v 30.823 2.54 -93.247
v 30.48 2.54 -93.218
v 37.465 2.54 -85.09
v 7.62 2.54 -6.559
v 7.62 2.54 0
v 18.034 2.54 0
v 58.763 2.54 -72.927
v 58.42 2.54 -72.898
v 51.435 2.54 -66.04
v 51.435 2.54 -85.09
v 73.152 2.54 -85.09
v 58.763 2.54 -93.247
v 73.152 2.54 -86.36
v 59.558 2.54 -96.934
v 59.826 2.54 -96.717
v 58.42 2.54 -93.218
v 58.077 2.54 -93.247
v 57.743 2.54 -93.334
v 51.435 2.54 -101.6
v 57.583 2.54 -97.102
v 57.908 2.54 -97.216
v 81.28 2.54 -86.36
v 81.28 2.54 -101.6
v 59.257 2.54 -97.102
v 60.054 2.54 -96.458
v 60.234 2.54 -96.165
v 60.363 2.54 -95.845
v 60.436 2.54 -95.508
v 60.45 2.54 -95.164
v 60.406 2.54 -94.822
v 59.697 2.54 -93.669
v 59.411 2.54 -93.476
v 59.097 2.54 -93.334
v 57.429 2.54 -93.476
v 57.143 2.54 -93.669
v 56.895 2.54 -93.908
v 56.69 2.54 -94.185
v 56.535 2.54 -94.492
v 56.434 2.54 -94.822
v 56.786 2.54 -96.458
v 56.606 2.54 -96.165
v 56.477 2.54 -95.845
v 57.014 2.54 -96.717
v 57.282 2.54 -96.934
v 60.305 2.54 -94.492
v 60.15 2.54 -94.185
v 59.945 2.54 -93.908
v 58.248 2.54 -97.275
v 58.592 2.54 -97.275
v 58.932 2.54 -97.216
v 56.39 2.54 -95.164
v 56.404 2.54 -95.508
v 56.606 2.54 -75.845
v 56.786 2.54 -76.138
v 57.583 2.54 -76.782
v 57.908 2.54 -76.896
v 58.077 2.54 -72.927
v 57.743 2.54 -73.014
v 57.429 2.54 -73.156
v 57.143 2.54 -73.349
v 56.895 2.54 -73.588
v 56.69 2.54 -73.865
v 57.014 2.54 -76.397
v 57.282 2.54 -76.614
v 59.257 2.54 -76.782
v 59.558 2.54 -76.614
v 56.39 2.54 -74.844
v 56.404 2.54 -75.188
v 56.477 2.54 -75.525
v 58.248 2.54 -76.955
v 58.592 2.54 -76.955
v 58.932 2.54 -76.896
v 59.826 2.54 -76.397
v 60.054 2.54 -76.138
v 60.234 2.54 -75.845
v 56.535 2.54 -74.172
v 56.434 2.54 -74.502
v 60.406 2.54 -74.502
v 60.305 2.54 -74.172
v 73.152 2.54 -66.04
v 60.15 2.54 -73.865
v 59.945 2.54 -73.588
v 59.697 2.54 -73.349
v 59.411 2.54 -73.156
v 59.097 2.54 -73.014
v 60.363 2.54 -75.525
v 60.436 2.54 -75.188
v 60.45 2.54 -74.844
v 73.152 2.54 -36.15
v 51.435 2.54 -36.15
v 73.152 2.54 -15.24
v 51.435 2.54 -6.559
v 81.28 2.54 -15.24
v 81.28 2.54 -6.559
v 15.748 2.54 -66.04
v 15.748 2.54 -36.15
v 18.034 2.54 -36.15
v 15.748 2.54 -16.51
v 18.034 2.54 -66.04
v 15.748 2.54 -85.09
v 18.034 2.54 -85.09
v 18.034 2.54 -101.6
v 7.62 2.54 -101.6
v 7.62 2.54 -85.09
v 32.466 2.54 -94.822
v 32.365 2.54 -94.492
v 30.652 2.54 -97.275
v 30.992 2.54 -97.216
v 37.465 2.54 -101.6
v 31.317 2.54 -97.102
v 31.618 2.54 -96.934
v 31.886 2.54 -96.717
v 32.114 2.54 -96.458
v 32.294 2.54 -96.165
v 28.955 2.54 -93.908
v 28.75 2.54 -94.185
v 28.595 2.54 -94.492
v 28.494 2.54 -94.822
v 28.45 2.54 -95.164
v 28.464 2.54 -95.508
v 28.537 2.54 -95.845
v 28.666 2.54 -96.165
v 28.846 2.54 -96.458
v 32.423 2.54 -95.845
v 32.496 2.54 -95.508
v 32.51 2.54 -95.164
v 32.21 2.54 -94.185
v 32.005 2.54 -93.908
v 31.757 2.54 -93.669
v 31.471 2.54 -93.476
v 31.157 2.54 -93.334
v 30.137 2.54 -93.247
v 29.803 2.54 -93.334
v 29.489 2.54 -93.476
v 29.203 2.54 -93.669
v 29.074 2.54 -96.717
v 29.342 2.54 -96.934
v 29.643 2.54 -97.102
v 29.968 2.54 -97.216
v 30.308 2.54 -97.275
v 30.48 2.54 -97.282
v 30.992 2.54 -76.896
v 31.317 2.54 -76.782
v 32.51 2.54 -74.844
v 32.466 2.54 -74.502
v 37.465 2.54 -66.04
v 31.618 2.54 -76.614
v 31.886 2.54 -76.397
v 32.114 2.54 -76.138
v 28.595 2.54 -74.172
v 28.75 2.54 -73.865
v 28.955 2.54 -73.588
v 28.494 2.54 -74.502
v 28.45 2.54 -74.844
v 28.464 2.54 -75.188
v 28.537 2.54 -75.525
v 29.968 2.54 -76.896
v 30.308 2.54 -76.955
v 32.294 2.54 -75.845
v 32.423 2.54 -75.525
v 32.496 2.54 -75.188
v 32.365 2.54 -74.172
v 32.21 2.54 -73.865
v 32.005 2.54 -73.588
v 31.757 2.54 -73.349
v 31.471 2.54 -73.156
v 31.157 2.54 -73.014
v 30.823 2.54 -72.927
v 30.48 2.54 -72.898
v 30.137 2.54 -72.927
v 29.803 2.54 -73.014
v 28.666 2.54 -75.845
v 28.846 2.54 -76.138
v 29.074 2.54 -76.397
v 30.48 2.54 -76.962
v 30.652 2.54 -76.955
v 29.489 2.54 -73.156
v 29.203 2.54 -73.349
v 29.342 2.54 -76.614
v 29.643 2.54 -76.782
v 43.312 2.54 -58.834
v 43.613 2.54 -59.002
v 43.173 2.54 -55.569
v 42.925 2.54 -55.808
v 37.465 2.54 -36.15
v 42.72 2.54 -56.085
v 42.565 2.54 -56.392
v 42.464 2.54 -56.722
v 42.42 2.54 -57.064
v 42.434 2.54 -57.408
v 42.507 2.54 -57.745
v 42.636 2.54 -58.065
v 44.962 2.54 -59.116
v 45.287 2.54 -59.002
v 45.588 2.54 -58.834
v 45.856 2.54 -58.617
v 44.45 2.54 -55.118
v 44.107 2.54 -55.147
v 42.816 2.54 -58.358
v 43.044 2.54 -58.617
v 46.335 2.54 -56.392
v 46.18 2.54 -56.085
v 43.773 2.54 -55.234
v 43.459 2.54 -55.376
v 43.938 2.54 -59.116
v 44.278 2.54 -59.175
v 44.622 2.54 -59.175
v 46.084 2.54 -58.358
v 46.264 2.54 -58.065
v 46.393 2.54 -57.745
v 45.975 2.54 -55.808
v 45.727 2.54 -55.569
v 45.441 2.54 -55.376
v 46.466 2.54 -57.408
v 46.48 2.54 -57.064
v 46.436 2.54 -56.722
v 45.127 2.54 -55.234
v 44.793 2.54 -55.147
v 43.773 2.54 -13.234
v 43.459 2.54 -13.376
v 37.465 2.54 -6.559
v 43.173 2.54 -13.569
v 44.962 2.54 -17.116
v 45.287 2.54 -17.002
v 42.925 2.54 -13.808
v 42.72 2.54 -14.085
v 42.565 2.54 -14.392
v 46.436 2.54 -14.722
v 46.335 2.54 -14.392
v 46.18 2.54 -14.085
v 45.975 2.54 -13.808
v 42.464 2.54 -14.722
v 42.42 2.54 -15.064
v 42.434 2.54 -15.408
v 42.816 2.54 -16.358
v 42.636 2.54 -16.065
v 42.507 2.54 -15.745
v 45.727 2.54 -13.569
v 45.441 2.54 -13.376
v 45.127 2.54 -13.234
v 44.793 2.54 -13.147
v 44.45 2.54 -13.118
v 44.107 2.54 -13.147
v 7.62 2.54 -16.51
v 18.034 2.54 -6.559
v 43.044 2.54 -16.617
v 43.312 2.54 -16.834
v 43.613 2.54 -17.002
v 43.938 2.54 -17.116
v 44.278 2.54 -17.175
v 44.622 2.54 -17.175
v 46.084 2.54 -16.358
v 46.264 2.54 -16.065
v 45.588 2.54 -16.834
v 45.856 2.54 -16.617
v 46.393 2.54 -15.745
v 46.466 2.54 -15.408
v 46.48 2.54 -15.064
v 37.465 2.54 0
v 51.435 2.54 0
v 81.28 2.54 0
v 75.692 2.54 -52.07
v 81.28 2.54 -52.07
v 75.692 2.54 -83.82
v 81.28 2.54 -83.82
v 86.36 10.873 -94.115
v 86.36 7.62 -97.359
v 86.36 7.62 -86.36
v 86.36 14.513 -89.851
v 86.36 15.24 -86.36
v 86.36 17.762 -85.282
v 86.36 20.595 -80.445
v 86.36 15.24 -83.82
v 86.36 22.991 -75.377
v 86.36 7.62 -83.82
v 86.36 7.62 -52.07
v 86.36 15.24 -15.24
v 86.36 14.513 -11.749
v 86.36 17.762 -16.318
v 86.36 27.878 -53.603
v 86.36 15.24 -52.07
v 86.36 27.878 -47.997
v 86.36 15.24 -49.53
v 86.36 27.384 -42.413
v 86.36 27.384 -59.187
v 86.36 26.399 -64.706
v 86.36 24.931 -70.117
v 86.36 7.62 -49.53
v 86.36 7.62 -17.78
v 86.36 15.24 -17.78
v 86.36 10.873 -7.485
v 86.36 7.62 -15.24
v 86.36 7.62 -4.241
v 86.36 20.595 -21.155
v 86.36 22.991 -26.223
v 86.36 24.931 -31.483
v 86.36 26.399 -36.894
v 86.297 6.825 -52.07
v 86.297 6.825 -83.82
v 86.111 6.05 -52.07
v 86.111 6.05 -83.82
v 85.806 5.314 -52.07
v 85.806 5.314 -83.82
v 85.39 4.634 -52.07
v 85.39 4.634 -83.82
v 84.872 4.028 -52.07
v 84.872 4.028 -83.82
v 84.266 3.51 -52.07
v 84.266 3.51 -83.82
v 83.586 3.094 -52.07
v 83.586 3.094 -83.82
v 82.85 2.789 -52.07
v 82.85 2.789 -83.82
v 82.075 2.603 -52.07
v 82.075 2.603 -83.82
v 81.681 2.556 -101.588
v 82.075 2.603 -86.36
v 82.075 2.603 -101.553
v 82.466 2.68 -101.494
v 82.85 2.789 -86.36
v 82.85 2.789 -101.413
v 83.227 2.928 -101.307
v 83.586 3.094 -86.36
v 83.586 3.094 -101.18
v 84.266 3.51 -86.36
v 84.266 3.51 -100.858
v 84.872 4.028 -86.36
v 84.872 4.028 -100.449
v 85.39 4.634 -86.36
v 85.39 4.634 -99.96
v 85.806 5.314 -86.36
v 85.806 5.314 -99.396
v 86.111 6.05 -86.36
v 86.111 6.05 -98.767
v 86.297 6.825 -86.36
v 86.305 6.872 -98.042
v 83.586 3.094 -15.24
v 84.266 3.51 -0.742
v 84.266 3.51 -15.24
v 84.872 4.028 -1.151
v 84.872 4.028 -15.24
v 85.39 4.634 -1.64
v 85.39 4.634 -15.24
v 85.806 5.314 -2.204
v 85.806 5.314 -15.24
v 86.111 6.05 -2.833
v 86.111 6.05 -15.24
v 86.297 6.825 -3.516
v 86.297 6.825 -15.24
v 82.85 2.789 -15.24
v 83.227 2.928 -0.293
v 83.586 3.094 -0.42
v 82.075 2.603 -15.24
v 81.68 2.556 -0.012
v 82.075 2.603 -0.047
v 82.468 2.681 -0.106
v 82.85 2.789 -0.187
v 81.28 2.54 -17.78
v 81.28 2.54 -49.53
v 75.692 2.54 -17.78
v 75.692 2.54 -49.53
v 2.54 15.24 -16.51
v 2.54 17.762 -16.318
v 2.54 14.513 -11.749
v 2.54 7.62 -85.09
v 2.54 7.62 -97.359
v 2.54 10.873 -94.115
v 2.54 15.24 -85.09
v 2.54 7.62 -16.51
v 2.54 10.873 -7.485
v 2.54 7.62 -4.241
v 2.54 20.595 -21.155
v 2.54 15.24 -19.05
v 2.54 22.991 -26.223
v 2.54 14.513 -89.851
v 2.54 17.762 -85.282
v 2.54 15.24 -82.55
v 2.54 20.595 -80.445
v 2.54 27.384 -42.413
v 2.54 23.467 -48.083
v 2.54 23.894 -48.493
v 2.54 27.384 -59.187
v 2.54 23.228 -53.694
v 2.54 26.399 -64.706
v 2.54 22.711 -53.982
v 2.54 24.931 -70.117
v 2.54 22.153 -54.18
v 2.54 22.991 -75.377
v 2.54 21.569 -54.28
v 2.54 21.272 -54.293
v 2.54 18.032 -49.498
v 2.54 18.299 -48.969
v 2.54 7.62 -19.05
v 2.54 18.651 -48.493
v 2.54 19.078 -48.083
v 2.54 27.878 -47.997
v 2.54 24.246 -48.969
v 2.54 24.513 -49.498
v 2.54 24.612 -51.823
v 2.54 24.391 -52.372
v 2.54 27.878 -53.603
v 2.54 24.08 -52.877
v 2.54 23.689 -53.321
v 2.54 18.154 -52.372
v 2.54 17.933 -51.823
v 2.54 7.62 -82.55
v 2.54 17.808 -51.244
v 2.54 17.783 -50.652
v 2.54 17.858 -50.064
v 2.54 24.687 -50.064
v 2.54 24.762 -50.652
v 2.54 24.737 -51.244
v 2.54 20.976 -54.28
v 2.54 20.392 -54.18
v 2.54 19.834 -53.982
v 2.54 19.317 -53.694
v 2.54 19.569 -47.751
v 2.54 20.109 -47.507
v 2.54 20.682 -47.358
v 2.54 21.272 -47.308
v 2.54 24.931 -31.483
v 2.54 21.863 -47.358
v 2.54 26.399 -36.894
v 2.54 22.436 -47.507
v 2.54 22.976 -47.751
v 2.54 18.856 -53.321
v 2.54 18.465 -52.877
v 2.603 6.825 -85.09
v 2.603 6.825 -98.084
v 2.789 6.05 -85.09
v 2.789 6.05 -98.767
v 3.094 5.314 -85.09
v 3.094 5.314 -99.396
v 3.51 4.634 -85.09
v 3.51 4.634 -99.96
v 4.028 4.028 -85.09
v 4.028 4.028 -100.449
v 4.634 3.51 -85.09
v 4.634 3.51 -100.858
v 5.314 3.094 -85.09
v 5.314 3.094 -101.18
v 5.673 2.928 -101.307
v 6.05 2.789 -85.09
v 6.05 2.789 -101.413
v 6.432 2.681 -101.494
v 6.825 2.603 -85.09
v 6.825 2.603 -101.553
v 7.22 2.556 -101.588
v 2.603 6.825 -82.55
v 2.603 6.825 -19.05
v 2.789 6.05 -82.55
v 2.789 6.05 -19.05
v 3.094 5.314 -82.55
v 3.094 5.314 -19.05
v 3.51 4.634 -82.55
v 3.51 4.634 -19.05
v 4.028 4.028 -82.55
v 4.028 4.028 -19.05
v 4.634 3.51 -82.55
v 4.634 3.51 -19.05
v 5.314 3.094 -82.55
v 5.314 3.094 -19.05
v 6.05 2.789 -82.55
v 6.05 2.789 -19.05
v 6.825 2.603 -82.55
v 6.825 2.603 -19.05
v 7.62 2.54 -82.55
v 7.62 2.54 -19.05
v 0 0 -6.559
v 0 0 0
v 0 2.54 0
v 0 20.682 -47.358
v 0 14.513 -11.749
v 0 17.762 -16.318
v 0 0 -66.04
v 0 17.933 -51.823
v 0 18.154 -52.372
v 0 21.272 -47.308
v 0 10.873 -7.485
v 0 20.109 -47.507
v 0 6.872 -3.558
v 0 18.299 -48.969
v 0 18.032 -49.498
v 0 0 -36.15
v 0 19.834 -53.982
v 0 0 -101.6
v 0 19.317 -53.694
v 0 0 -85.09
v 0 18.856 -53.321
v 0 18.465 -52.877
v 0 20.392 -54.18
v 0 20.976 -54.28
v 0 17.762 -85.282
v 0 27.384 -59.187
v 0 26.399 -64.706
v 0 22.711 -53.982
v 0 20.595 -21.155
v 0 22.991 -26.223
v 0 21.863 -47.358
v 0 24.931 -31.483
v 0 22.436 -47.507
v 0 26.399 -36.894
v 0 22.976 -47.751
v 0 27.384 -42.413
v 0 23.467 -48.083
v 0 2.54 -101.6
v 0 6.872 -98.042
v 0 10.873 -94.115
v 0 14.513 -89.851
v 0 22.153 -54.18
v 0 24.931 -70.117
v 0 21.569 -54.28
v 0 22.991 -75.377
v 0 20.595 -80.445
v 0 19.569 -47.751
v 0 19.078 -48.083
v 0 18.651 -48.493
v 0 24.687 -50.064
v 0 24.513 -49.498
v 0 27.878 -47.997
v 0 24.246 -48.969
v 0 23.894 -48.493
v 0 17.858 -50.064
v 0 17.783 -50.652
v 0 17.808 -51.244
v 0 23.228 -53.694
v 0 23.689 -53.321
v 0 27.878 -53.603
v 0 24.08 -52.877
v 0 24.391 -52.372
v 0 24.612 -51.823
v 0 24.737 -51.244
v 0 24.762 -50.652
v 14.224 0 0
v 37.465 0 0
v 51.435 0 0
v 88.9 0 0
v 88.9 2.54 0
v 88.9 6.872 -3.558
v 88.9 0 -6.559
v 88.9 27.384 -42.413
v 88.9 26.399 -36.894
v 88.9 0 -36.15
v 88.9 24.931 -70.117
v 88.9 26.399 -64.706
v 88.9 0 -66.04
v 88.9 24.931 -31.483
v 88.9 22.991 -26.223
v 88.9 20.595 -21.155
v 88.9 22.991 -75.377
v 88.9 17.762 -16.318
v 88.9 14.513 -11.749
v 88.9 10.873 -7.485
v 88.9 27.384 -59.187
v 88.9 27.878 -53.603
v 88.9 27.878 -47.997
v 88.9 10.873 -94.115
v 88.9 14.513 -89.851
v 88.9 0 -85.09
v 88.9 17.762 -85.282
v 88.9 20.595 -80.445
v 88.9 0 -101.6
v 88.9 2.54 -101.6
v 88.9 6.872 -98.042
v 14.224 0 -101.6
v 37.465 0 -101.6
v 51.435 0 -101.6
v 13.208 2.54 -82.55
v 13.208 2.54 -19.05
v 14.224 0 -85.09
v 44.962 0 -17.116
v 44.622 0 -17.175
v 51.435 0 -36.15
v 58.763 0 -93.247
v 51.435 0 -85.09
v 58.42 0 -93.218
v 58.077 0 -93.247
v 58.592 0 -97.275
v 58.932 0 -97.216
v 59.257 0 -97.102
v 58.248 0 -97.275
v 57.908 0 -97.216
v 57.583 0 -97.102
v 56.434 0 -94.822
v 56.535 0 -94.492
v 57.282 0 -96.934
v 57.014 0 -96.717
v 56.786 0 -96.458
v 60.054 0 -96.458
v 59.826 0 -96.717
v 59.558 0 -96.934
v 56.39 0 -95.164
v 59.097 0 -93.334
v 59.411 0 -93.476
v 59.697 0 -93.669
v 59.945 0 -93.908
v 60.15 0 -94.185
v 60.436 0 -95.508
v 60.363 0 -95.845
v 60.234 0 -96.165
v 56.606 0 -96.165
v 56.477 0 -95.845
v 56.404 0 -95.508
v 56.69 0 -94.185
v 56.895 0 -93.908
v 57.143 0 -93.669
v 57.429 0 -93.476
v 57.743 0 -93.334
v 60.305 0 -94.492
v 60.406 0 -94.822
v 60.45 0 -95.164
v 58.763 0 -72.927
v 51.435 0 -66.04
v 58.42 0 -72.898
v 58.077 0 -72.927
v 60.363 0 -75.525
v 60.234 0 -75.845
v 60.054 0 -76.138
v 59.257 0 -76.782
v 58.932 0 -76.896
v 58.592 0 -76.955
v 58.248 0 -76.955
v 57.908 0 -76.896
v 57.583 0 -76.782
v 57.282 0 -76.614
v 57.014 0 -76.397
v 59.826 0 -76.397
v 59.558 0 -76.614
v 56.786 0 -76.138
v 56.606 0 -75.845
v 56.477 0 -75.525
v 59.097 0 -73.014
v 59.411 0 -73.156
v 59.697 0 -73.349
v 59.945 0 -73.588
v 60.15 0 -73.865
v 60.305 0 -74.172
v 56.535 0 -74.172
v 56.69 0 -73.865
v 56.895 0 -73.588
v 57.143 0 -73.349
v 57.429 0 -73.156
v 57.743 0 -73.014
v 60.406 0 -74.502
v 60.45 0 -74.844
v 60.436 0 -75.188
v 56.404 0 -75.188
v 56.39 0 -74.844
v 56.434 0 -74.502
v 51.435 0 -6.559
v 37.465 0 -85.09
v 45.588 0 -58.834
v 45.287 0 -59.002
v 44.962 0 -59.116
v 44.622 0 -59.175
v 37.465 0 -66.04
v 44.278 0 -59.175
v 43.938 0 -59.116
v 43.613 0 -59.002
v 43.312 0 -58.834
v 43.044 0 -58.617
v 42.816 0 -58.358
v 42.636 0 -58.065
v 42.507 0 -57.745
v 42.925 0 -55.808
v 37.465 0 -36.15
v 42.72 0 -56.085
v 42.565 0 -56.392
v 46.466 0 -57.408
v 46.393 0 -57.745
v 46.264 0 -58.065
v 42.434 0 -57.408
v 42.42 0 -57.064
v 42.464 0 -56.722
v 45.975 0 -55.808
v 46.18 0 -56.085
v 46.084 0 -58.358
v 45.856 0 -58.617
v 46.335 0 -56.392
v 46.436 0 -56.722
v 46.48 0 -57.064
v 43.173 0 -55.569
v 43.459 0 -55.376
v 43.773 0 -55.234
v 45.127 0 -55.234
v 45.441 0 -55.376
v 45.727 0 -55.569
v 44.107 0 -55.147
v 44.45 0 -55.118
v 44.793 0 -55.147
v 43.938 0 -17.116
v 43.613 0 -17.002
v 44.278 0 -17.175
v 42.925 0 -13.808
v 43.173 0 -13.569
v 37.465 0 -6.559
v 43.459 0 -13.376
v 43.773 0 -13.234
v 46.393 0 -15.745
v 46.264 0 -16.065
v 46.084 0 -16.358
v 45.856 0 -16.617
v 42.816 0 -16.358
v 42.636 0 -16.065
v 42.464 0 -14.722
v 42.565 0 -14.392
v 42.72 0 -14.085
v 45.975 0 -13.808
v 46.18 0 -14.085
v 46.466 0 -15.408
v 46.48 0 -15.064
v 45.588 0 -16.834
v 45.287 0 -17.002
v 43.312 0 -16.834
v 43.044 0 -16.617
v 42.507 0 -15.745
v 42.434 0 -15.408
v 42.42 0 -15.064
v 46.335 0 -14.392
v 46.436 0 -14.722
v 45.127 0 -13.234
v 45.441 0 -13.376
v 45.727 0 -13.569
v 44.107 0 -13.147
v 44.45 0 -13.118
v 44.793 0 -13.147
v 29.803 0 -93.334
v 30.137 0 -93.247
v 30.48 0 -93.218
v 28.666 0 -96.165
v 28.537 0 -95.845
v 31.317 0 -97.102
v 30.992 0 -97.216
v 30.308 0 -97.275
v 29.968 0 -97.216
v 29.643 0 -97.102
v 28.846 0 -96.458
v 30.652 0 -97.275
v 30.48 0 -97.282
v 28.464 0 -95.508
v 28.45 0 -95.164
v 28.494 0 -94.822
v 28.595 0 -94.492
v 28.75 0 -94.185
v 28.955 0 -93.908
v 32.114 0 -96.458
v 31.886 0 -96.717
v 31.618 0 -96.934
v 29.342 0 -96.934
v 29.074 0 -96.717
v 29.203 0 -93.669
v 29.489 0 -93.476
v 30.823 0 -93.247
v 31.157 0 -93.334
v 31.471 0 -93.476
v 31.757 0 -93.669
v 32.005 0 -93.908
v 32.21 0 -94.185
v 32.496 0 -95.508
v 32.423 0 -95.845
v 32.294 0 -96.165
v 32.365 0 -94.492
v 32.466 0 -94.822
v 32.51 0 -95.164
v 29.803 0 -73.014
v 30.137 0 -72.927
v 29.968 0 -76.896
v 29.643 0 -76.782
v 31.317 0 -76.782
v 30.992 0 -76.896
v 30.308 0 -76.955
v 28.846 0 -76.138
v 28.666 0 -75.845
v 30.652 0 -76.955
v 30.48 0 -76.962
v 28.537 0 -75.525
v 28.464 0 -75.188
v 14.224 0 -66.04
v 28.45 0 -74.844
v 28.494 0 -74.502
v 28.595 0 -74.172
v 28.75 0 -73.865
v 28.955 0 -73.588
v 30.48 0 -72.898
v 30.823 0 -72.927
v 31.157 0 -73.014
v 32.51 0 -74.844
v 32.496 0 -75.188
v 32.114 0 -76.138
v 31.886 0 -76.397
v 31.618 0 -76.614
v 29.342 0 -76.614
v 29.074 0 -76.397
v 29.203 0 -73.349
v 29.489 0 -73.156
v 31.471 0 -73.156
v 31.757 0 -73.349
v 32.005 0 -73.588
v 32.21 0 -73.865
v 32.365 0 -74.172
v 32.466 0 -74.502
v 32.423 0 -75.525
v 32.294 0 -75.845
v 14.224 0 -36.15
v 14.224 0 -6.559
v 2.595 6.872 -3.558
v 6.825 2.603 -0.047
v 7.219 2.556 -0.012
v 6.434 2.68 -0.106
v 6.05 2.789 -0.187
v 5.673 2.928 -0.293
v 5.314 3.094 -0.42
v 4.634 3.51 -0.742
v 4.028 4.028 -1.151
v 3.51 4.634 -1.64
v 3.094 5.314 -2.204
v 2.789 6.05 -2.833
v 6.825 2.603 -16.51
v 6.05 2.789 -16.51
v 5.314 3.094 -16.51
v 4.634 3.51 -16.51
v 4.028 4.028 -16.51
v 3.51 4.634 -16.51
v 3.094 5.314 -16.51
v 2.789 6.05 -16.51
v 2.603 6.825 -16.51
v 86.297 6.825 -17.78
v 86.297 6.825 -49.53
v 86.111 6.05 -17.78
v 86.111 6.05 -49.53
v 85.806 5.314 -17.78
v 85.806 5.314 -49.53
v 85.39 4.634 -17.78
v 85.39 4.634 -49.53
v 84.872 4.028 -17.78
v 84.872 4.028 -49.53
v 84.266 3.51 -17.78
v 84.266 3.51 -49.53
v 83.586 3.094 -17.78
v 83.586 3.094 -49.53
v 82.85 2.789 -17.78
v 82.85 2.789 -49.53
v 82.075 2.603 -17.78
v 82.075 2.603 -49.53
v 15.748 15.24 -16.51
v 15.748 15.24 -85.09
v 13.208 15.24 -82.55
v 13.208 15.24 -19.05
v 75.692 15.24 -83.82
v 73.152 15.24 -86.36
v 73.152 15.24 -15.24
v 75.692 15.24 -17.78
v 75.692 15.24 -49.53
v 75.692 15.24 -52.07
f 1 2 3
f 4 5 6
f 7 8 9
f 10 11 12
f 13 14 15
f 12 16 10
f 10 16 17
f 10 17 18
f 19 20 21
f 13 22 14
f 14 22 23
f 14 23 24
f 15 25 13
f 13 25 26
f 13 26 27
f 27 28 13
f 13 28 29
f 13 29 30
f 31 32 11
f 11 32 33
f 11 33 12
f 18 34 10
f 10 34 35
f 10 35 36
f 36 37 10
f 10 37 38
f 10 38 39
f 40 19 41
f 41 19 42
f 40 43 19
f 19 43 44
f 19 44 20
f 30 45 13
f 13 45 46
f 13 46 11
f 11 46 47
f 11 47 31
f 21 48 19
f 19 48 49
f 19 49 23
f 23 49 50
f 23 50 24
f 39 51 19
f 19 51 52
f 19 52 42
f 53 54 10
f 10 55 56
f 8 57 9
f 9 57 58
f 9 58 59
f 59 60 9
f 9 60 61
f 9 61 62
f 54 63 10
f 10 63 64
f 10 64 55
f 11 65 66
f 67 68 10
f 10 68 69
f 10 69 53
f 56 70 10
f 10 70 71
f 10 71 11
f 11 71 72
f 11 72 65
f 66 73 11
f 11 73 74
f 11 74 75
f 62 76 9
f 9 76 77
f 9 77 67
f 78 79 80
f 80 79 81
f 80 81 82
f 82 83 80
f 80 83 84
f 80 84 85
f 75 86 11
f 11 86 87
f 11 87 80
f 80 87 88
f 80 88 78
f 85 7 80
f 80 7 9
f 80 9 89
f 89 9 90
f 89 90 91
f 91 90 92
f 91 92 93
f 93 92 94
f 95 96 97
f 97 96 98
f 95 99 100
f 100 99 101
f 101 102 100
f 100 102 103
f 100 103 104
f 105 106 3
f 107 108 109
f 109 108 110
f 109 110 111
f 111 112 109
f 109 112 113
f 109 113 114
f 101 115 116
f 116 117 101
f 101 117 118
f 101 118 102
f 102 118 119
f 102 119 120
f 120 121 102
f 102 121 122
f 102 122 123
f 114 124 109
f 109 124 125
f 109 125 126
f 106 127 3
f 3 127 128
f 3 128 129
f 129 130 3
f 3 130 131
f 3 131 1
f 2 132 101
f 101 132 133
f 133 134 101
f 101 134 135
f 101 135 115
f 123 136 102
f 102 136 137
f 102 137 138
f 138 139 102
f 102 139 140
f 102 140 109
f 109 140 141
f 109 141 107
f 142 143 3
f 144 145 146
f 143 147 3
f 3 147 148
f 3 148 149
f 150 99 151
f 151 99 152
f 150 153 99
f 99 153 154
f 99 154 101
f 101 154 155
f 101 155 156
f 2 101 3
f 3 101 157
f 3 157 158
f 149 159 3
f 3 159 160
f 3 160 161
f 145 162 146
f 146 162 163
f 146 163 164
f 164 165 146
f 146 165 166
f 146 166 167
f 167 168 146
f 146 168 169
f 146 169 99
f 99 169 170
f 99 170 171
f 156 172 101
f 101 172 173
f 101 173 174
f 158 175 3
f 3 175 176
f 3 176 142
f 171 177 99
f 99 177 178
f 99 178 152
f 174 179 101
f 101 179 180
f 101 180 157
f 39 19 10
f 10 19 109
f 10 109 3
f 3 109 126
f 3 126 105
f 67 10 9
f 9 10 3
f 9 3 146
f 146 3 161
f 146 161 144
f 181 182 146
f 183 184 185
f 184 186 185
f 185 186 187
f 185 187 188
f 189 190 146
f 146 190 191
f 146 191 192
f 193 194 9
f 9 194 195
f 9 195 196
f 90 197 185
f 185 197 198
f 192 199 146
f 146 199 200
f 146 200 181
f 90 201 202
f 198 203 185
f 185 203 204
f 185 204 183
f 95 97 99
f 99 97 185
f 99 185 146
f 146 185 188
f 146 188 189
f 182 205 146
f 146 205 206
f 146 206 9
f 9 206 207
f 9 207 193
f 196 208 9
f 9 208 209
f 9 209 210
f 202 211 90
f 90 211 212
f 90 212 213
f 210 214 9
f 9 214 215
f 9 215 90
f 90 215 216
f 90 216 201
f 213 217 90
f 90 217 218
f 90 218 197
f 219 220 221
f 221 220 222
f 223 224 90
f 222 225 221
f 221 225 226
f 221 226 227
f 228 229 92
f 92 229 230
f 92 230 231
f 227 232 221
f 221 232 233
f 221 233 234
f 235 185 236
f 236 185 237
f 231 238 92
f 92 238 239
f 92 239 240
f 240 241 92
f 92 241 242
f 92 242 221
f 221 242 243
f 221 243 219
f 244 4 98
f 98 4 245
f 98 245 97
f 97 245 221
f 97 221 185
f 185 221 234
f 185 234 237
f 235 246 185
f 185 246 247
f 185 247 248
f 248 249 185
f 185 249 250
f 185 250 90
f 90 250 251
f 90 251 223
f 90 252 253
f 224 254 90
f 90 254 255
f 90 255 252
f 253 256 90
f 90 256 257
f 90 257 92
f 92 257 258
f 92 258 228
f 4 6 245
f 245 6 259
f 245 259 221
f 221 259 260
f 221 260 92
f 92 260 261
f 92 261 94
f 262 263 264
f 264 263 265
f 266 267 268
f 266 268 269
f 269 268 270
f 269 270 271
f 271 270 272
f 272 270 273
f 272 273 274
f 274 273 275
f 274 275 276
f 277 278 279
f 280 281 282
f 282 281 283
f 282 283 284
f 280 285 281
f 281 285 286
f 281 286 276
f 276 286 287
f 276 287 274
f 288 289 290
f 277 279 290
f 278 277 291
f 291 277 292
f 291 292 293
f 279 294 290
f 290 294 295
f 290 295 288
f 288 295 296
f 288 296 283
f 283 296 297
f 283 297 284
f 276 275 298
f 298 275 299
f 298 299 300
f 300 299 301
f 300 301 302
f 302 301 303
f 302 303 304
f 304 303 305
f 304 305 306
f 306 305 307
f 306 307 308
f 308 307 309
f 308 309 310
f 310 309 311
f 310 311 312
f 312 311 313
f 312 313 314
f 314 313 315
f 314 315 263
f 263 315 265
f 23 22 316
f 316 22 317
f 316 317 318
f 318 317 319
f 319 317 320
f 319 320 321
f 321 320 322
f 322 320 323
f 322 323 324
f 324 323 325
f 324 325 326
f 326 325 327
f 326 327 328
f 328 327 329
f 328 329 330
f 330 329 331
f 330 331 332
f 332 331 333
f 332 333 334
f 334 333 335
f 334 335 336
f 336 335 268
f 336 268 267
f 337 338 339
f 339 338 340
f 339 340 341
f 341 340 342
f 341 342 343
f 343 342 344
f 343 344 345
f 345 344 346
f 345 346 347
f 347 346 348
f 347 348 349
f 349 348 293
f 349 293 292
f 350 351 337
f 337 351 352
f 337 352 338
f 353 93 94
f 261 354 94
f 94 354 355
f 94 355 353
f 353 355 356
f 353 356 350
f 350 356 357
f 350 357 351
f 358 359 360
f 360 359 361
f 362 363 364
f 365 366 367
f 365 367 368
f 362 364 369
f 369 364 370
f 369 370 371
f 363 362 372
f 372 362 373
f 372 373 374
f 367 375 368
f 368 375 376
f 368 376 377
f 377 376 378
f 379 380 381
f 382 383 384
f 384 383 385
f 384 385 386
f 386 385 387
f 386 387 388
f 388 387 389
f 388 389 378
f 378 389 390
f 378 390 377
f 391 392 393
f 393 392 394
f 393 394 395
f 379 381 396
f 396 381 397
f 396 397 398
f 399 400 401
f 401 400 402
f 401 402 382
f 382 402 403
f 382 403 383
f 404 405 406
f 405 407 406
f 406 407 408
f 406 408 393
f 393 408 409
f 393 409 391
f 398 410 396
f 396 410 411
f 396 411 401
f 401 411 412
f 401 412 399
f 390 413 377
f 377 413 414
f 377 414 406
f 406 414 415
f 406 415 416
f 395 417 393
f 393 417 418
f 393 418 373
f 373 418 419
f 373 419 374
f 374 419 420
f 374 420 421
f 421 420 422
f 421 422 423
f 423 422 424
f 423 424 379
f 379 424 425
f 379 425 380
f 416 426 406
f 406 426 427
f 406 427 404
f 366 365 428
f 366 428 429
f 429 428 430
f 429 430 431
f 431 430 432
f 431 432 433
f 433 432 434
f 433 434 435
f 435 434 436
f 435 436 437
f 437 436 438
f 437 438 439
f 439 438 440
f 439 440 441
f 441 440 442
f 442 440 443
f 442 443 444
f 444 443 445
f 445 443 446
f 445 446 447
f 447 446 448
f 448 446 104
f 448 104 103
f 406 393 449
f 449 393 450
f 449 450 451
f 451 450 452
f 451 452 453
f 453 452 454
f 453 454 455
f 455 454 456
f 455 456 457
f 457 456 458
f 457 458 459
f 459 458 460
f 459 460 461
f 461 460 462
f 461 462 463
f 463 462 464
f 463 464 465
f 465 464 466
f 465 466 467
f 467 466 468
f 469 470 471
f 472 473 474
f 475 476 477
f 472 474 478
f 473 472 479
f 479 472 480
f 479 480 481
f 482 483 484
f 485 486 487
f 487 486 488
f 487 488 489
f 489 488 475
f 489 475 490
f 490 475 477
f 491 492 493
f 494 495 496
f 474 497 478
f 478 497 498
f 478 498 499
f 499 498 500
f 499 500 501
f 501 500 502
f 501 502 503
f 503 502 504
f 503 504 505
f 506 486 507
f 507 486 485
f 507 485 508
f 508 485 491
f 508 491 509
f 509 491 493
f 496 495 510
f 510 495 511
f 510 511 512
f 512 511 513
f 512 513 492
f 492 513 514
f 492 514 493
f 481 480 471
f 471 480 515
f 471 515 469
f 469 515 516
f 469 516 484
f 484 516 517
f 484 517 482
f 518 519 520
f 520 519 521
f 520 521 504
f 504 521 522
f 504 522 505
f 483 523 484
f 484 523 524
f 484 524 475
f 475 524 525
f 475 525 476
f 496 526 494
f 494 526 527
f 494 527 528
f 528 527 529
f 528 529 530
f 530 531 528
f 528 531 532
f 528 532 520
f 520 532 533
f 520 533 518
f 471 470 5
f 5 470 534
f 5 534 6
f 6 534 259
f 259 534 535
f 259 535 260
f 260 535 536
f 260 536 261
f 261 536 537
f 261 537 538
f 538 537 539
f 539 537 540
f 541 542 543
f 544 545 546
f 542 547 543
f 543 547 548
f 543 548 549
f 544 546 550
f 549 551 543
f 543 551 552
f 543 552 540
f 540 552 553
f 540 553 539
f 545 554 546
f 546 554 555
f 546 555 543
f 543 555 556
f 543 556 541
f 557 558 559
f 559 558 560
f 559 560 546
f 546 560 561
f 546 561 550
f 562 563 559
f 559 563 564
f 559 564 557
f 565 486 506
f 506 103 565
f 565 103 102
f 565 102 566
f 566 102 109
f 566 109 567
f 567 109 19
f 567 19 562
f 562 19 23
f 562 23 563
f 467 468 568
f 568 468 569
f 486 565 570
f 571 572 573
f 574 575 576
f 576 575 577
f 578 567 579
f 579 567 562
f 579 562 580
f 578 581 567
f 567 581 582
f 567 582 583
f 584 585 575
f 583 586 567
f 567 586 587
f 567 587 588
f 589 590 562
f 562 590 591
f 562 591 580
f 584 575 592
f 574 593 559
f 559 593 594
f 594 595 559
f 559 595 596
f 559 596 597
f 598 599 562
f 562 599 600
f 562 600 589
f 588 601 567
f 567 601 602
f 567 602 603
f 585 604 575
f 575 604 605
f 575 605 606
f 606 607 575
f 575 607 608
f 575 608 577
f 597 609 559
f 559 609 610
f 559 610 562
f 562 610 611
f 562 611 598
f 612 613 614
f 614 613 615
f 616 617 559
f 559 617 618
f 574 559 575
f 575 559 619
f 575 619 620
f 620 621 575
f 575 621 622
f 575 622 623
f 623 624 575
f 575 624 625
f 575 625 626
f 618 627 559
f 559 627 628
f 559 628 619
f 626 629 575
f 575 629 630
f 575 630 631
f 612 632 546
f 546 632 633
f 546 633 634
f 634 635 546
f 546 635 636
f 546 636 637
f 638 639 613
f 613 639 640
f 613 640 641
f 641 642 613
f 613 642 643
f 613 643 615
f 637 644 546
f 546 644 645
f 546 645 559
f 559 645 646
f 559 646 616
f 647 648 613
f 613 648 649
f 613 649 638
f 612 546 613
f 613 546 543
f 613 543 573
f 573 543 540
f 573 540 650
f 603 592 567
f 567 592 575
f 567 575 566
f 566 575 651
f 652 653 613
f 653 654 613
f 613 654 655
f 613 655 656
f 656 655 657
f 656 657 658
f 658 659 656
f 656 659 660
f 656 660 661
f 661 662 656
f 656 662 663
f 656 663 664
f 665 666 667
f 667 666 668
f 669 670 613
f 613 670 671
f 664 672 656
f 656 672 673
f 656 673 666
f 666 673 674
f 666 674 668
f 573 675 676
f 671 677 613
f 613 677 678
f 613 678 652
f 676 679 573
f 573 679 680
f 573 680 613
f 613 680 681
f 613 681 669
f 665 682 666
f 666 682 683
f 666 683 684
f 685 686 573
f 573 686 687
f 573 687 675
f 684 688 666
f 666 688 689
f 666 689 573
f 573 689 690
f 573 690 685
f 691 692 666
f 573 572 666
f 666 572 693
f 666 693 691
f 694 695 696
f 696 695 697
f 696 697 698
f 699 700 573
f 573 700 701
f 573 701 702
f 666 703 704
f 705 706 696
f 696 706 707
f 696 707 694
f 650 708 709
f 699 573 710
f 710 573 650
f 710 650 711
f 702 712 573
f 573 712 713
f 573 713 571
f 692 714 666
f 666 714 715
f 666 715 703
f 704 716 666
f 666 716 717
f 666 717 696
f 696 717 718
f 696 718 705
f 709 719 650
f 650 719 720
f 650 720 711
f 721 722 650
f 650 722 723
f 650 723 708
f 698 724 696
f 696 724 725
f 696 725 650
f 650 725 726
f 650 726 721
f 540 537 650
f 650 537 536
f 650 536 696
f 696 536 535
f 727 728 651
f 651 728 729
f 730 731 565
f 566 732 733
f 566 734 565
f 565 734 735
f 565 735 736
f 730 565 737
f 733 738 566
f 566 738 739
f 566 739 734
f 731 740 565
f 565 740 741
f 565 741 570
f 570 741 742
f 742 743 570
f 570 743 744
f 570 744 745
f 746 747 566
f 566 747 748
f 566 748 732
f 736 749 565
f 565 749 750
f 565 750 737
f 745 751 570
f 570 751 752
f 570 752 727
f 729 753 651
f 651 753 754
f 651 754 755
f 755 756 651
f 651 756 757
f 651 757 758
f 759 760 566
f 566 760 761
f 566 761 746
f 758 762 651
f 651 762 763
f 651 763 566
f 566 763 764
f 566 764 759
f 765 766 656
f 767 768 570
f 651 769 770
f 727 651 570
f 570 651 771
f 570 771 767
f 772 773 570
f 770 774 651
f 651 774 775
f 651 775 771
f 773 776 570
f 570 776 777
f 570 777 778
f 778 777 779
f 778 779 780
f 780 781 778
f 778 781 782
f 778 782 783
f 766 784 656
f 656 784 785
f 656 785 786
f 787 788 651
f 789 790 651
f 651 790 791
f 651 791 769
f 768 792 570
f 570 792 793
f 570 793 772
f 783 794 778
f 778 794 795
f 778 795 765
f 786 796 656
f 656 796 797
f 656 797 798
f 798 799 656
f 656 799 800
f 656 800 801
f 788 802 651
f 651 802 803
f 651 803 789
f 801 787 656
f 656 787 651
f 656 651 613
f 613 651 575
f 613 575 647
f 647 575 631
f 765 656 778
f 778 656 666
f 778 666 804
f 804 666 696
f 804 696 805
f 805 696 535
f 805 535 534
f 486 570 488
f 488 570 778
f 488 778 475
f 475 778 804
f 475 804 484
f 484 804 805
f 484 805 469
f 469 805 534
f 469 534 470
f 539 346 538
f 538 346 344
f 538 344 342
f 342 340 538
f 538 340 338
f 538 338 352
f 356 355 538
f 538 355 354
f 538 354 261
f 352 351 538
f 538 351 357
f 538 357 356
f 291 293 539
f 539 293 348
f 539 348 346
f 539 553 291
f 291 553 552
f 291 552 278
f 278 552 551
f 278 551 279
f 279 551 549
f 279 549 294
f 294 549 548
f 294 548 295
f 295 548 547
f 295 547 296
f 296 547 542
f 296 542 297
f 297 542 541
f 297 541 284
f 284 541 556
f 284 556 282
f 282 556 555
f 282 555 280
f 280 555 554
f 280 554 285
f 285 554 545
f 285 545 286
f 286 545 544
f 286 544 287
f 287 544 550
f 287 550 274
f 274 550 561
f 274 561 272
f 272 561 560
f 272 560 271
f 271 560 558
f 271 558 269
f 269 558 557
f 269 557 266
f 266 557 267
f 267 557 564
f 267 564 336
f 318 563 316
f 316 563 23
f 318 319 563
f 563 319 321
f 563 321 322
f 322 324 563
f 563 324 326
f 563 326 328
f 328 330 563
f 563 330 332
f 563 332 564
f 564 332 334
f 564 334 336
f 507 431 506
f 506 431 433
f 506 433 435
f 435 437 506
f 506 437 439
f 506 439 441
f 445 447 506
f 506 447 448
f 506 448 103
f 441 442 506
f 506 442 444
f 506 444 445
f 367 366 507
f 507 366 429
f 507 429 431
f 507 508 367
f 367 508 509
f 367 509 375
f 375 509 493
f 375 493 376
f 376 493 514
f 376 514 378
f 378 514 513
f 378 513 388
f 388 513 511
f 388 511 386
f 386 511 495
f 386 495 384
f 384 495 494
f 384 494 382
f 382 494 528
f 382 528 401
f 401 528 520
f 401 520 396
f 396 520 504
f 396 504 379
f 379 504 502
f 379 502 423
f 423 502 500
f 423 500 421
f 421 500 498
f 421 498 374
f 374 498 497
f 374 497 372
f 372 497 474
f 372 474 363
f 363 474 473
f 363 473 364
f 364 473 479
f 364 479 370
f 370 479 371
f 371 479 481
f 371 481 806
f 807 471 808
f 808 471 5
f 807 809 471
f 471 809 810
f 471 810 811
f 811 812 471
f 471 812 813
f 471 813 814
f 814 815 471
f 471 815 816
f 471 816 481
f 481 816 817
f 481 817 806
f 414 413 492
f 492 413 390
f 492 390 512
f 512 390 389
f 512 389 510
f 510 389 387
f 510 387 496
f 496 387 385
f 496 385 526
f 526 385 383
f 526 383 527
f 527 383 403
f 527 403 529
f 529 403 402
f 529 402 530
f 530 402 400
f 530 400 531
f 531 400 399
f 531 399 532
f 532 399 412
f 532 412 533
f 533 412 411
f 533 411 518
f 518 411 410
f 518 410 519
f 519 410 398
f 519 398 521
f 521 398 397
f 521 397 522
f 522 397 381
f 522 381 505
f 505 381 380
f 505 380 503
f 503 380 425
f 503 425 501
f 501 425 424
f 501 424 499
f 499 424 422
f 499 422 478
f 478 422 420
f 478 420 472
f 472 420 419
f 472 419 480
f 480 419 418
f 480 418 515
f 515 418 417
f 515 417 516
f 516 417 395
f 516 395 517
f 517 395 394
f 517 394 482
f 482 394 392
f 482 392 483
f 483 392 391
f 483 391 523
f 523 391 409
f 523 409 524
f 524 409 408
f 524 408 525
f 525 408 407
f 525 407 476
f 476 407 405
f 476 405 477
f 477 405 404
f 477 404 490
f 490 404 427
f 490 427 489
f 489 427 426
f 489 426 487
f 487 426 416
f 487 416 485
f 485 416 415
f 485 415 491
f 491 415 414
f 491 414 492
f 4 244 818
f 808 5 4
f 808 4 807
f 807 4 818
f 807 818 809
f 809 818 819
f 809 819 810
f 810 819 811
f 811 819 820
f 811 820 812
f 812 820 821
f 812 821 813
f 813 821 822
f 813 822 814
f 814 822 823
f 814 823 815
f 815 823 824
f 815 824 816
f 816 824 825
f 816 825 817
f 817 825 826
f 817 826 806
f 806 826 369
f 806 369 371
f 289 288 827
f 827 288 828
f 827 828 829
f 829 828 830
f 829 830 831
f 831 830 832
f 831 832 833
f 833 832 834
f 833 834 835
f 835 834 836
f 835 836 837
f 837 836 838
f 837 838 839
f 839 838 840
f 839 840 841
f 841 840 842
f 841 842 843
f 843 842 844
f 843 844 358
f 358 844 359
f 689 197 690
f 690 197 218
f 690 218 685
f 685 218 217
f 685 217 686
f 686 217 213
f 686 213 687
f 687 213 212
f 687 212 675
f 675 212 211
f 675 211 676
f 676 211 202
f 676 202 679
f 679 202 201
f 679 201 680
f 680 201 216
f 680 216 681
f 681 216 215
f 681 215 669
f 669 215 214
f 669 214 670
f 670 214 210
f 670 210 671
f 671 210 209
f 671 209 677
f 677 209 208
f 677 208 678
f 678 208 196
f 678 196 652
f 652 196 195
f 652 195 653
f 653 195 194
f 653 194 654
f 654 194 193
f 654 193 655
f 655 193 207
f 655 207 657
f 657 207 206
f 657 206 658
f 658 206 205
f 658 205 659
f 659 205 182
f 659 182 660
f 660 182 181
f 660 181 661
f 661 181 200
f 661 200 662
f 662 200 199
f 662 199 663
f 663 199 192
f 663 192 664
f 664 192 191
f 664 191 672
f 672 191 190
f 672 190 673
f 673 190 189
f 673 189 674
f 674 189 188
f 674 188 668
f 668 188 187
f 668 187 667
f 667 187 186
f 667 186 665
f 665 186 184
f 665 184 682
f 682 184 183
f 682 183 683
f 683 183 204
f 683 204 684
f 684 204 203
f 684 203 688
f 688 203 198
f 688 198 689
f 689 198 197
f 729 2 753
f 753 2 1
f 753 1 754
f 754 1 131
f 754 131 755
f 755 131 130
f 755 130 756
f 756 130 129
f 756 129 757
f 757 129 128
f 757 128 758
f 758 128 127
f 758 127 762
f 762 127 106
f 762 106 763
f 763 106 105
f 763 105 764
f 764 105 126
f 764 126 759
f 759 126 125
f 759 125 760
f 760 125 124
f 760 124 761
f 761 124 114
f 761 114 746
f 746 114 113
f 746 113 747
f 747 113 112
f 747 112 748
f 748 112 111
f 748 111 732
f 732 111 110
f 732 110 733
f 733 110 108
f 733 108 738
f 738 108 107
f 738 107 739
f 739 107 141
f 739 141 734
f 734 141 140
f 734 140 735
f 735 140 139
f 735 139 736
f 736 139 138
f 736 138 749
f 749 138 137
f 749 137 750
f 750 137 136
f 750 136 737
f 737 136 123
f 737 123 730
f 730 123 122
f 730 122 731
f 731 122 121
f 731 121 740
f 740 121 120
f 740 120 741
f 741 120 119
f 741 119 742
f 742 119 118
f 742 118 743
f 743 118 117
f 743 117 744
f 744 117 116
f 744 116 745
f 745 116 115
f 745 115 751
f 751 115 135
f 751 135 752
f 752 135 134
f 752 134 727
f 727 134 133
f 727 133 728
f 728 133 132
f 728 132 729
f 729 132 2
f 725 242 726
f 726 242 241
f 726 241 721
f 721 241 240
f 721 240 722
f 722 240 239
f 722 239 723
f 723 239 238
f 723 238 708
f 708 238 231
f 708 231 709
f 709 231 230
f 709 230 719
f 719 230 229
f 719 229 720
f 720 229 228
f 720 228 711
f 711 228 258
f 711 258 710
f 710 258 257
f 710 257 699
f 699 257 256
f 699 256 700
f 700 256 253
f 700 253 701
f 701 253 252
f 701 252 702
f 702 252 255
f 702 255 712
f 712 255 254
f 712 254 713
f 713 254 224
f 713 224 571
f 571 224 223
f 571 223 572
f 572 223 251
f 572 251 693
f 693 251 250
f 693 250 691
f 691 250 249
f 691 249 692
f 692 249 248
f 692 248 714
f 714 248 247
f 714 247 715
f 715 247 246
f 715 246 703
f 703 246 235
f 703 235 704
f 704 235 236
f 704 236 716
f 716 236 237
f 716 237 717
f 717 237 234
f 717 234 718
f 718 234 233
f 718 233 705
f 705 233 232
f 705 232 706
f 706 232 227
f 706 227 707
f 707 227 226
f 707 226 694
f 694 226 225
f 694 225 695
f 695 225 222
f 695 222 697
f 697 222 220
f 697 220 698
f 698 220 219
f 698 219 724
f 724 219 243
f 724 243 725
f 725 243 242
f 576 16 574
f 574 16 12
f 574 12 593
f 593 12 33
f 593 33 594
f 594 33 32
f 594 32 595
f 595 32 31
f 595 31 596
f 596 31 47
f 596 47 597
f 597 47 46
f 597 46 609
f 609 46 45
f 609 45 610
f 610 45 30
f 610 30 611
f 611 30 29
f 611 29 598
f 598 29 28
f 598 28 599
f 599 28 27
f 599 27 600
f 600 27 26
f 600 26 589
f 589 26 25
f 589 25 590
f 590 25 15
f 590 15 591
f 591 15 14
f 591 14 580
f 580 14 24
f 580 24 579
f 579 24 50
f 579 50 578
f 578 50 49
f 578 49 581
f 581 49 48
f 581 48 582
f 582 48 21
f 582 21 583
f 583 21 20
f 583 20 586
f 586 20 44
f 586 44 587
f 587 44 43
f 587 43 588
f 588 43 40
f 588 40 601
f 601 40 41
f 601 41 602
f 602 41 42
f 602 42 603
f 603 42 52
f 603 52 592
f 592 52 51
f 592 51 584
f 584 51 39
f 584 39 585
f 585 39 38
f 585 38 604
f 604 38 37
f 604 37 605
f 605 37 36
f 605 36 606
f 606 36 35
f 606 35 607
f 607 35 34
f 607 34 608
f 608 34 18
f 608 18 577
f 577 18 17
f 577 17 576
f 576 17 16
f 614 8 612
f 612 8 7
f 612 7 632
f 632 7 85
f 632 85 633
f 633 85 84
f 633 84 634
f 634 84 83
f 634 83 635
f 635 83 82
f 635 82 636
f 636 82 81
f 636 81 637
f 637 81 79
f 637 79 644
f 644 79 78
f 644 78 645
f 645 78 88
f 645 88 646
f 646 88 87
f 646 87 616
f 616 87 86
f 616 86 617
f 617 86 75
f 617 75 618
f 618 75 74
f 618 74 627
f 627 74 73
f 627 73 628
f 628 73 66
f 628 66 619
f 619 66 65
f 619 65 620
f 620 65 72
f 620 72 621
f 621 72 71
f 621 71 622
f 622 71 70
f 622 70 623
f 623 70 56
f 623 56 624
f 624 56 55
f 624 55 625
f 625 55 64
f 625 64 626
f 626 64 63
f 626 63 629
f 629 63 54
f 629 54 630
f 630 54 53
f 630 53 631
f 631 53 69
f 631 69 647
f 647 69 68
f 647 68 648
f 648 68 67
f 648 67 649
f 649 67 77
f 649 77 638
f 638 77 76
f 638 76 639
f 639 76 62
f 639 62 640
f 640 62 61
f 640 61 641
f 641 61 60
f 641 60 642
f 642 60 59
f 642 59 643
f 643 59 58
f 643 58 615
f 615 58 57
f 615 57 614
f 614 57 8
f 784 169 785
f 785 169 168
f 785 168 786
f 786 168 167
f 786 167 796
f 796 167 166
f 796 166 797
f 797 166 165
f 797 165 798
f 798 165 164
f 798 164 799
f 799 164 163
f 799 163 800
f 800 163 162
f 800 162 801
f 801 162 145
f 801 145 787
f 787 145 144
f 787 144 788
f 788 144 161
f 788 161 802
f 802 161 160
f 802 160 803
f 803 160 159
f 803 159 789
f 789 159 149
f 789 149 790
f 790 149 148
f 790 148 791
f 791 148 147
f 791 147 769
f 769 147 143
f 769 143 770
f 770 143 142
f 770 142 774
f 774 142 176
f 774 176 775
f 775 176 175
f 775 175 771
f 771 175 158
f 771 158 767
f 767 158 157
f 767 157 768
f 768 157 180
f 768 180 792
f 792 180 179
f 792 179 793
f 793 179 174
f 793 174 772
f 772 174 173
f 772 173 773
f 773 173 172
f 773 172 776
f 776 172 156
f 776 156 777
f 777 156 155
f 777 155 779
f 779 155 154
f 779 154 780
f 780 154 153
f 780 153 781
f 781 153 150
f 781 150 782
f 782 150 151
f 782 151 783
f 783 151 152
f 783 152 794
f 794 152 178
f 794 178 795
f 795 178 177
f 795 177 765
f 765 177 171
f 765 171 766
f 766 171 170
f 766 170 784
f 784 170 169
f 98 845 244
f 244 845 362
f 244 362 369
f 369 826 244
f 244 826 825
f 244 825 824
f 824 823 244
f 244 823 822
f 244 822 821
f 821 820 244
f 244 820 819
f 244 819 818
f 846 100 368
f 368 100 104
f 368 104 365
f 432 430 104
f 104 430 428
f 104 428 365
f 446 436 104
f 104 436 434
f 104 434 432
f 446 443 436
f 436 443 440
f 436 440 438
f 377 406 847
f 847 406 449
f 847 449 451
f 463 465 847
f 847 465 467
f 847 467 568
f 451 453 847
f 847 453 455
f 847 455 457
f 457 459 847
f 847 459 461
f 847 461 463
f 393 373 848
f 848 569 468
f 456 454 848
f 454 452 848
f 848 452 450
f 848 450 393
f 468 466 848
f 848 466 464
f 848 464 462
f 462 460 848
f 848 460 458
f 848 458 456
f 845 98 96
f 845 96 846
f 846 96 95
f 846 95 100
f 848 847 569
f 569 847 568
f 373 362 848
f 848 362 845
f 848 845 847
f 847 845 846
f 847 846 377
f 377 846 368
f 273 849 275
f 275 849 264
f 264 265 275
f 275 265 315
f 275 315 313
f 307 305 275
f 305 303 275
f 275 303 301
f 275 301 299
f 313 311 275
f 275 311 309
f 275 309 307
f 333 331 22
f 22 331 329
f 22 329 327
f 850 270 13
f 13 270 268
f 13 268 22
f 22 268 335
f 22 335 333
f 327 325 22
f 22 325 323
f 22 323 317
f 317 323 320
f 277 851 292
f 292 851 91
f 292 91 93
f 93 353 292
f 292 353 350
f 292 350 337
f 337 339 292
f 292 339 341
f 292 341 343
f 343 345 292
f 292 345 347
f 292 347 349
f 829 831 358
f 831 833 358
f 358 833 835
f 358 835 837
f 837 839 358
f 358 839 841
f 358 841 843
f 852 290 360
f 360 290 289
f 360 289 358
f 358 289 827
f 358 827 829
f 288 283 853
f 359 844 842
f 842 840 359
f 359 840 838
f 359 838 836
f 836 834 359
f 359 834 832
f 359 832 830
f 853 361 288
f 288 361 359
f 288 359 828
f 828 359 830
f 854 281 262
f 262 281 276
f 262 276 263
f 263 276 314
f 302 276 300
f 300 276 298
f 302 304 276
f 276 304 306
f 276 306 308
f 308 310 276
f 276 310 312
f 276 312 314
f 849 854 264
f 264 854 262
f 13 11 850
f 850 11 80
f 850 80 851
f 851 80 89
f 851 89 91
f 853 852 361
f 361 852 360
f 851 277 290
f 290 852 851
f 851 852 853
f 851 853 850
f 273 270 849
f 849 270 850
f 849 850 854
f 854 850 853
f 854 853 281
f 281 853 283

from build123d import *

# Parameters (mm, degrees)
SKETCH1_W           = 88.9
SKETCH1_H           = 101.6
BASE_EXTRUDE_DEPTH  = 2.54
WALL_EXTRUDE_DEPTH  = 2.54
CUT_EXTRUDE1_REACH  = 139.864
SKETCH3_R           = 3.4925
FILLET2_R           = 5.08
SKETCH4_R           = 2.032
CUT_EXTRUDE2_DEPTH  = 138.371503752
SKETCH5_W           = 2.54
SKETCH5_H           = 2.54
SKETCH5_W_2         = 5.08
SKETCH5_W_3         = 5.588
BOSS_EXTRUDE1_DEPTH = 12.7


with BuildPart() as part:
    # Sketch1 → Base Extrude (new body)
    with BuildSketch(Plane(origin=(0, 0, 0), x_dir=(1, 0, 0), z_dir=(0, 1, 0))):
        with Locations((44.45, 50.8)):
            Rectangle(SKETCH1_W, SKETCH1_H)
    extrude(amount=BASE_EXTRUDE_DEPTH)

    # Sketch2 → Wall Extrude (add)
    with BuildSketch(Plane(origin=(88.9, 0, 0), x_dir=(0, 0, -1), z_dir=(1, 0, 0))):
        with BuildLine():
            Line((101.6, 2.54), (101.6, 0))
            Line((101.6, 0), (0, 0))
            Line((0, 0), (0, 2.54))
            ThreePointArc((0, 2.54), (50.8, 27.94), (101.6, 2.54))
        make_face()
    wall_extrude = extrude(amount=-WALL_EXTRUDE_DEPTH)

    # Wall Mirror: Wall Extrude across plane
    add(wall_extrude.mirror(Plane(origin=(44.45, 0, 0), x_dir=(0, 0, 1), z_dir=(1, 0, 0))))

    # Sketch3 → Cut-Extrude1 (cut, up to next)
    with BuildSketch(Plane.ZY, mode=Mode.PRIVATE) as cut_extrude1_sk1:
        with Locations((-50.8, 21.2725)):
            Circle(SKETCH3_R)
    cut_extrude1_tool1 = extrude(cut_extrude1_sk1.sketch, amount=-CUT_EXTRUDE1_REACH, mode=Mode.PRIVATE) & part.part
    add(cut_extrude1_tool1.solids().sort_by_distance((0, 21.2725, -50.8))[0], mode=Mode.SUBTRACT)

    # Fillet2
    # the kernel refuses this fillet: 5.08 mm, written as the material it adds along each edge
    with BuildSketch(Plane(origin=(86.36, 2.54, -101.6), x_dir=(-1, 0, 0), z_dir=(0, 0, 1))) as fillet2_piece_1_section:
        with BuildLine():
            CenterArc((FILLET2_R, -FILLET2_R), FILLET2_R, 90, 90)
            Line((0, -FILLET2_R), (0, 0))
            Line((0, 0), (FILLET2_R, 0))
        make_face()
    fillet2_piece_1 = extrude(amount=101.6, mode=Mode.PRIVATE)
    fillet2_piece_1 = fillet2_piece_1 & Plane(origin=(85.198656014, -35.56, -50.8), x_dir=(0, 0.6000000000000003, 0.7999999999999998), z_dir=(1, 0, 0)) * Cylinder(63.5, 224, mode=Mode.PRIVATE)
    add(fillet2_piece_1)
    with BuildSketch(Plane(origin=(2.54, 2.54, -101.6), x_dir=(1, 0, 0), z_dir=(0, 0, 1))) as fillet2_piece_2_section:
        with BuildLine():
            CenterArc((FILLET2_R, FILLET2_R), FILLET2_R, 180, 90)
            Line((0, FILLET2_R), (0, 0))
            Line((0, 0), (FILLET2_R, 0))
        make_face()
    fillet2_piece_2 = extrude(amount=101.6, mode=Mode.PRIVATE)
    fillet2_piece_2 = fillet2_piece_2 & Plane(origin=(3.701343986, -35.56, -50.8), x_dir=(0, 0.6000000000000003, 0.7999999999999998), z_dir=(-1, 0, 0)) * Cylinder(63.5, 224, mode=Mode.PRIVATE)
    add(fillet2_piece_2)

    # Sketch4 → Cut-Extrude2 (cut, through all)
    with BuildSketch(Plane(origin=(0, 2.54, 0), x_dir=(1, 0, 0), z_dir=(0, 1, 0))):
        with Locations(Location((44.45, 57.15, 0), (0, 0, 270))):
            Circle(SKETCH4_R)
        with Locations(Location((44.45, 15.15, 0), (0, 0, 270))):
            Circle(SKETCH4_R)
        with Locations(Location((58.42, 74.93, 0), (0, 0, 270))):
            Circle(SKETCH4_R)
        with Locations(Location((58.42, 95.25, 0), (0, 0, 270))):
            Circle(SKETCH4_R)
        with Locations(Location((30.48, 74.93, 0), (0, 0, 90))):
            Circle(SKETCH4_R)
        with Locations(Location((30.48, 95.25, 0), (0, 0, 90))):
            Circle(SKETCH4_R)
    extrude(amount=-CUT_EXTRUDE2_DEPTH, mode=Mode.SUBTRACT)

    # Sketch5 → Boss-Extrude1 (add)
    with BuildSketch(Plane(origin=(0, 2.54, 0), x_dir=(1, 0, 0), z_dir=(0, 1, 0))):
        with Locations((87.63, 50.8)):
            Rectangle(SKETCH5_W, SKETCH5_H)
        Polygon((13.208, 82.55), (13.208, 19.05), (7.62, 19.05), (7.62, 16.51), (15.748, 16.51), (15.748, 85.09), (7.62, 85.09), (7.62, 82.55), align=None)
        with Locations((5.08, 17.78)):
            Rectangle(SKETCH5_W_2, SKETCH5_H)
        with Locations((5.08, 83.82)):
            Rectangle(SKETCH5_W_2, SKETCH5_H)
        Polygon((81.28, 83.82), (81.28, 86.36), (73.152, 86.36), (73.152, 52.07), (75.692, 52.07), (75.692, 83.82), align=None)
        Polygon((75.692, 49.53), (73.152, 49.53), (73.152, 15.24), (81.28, 15.24), (81.28, 17.78), (75.692, 17.78), align=None)
        with Locations((83.82, 50.8)):
            Rectangle(SKETCH5_W_2, SKETCH5_H)
        with Locations((78.486, 50.8)):
            Rectangle(SKETCH5_W_3, SKETCH5_H)
        with Locations((74.422, 50.8)):
            Rectangle(SKETCH5_W, SKETCH5_H)
        with Locations((83.82, 85.09)):
            Rectangle(SKETCH5_W_2, SKETCH5_H)
        with Locations((83.82, 16.51)):
            Rectangle(SKETCH5_W_2, SKETCH5_H)
    extrude(amount=BOSS_EXTRUDE1_DEPTH)


solid = part.part
